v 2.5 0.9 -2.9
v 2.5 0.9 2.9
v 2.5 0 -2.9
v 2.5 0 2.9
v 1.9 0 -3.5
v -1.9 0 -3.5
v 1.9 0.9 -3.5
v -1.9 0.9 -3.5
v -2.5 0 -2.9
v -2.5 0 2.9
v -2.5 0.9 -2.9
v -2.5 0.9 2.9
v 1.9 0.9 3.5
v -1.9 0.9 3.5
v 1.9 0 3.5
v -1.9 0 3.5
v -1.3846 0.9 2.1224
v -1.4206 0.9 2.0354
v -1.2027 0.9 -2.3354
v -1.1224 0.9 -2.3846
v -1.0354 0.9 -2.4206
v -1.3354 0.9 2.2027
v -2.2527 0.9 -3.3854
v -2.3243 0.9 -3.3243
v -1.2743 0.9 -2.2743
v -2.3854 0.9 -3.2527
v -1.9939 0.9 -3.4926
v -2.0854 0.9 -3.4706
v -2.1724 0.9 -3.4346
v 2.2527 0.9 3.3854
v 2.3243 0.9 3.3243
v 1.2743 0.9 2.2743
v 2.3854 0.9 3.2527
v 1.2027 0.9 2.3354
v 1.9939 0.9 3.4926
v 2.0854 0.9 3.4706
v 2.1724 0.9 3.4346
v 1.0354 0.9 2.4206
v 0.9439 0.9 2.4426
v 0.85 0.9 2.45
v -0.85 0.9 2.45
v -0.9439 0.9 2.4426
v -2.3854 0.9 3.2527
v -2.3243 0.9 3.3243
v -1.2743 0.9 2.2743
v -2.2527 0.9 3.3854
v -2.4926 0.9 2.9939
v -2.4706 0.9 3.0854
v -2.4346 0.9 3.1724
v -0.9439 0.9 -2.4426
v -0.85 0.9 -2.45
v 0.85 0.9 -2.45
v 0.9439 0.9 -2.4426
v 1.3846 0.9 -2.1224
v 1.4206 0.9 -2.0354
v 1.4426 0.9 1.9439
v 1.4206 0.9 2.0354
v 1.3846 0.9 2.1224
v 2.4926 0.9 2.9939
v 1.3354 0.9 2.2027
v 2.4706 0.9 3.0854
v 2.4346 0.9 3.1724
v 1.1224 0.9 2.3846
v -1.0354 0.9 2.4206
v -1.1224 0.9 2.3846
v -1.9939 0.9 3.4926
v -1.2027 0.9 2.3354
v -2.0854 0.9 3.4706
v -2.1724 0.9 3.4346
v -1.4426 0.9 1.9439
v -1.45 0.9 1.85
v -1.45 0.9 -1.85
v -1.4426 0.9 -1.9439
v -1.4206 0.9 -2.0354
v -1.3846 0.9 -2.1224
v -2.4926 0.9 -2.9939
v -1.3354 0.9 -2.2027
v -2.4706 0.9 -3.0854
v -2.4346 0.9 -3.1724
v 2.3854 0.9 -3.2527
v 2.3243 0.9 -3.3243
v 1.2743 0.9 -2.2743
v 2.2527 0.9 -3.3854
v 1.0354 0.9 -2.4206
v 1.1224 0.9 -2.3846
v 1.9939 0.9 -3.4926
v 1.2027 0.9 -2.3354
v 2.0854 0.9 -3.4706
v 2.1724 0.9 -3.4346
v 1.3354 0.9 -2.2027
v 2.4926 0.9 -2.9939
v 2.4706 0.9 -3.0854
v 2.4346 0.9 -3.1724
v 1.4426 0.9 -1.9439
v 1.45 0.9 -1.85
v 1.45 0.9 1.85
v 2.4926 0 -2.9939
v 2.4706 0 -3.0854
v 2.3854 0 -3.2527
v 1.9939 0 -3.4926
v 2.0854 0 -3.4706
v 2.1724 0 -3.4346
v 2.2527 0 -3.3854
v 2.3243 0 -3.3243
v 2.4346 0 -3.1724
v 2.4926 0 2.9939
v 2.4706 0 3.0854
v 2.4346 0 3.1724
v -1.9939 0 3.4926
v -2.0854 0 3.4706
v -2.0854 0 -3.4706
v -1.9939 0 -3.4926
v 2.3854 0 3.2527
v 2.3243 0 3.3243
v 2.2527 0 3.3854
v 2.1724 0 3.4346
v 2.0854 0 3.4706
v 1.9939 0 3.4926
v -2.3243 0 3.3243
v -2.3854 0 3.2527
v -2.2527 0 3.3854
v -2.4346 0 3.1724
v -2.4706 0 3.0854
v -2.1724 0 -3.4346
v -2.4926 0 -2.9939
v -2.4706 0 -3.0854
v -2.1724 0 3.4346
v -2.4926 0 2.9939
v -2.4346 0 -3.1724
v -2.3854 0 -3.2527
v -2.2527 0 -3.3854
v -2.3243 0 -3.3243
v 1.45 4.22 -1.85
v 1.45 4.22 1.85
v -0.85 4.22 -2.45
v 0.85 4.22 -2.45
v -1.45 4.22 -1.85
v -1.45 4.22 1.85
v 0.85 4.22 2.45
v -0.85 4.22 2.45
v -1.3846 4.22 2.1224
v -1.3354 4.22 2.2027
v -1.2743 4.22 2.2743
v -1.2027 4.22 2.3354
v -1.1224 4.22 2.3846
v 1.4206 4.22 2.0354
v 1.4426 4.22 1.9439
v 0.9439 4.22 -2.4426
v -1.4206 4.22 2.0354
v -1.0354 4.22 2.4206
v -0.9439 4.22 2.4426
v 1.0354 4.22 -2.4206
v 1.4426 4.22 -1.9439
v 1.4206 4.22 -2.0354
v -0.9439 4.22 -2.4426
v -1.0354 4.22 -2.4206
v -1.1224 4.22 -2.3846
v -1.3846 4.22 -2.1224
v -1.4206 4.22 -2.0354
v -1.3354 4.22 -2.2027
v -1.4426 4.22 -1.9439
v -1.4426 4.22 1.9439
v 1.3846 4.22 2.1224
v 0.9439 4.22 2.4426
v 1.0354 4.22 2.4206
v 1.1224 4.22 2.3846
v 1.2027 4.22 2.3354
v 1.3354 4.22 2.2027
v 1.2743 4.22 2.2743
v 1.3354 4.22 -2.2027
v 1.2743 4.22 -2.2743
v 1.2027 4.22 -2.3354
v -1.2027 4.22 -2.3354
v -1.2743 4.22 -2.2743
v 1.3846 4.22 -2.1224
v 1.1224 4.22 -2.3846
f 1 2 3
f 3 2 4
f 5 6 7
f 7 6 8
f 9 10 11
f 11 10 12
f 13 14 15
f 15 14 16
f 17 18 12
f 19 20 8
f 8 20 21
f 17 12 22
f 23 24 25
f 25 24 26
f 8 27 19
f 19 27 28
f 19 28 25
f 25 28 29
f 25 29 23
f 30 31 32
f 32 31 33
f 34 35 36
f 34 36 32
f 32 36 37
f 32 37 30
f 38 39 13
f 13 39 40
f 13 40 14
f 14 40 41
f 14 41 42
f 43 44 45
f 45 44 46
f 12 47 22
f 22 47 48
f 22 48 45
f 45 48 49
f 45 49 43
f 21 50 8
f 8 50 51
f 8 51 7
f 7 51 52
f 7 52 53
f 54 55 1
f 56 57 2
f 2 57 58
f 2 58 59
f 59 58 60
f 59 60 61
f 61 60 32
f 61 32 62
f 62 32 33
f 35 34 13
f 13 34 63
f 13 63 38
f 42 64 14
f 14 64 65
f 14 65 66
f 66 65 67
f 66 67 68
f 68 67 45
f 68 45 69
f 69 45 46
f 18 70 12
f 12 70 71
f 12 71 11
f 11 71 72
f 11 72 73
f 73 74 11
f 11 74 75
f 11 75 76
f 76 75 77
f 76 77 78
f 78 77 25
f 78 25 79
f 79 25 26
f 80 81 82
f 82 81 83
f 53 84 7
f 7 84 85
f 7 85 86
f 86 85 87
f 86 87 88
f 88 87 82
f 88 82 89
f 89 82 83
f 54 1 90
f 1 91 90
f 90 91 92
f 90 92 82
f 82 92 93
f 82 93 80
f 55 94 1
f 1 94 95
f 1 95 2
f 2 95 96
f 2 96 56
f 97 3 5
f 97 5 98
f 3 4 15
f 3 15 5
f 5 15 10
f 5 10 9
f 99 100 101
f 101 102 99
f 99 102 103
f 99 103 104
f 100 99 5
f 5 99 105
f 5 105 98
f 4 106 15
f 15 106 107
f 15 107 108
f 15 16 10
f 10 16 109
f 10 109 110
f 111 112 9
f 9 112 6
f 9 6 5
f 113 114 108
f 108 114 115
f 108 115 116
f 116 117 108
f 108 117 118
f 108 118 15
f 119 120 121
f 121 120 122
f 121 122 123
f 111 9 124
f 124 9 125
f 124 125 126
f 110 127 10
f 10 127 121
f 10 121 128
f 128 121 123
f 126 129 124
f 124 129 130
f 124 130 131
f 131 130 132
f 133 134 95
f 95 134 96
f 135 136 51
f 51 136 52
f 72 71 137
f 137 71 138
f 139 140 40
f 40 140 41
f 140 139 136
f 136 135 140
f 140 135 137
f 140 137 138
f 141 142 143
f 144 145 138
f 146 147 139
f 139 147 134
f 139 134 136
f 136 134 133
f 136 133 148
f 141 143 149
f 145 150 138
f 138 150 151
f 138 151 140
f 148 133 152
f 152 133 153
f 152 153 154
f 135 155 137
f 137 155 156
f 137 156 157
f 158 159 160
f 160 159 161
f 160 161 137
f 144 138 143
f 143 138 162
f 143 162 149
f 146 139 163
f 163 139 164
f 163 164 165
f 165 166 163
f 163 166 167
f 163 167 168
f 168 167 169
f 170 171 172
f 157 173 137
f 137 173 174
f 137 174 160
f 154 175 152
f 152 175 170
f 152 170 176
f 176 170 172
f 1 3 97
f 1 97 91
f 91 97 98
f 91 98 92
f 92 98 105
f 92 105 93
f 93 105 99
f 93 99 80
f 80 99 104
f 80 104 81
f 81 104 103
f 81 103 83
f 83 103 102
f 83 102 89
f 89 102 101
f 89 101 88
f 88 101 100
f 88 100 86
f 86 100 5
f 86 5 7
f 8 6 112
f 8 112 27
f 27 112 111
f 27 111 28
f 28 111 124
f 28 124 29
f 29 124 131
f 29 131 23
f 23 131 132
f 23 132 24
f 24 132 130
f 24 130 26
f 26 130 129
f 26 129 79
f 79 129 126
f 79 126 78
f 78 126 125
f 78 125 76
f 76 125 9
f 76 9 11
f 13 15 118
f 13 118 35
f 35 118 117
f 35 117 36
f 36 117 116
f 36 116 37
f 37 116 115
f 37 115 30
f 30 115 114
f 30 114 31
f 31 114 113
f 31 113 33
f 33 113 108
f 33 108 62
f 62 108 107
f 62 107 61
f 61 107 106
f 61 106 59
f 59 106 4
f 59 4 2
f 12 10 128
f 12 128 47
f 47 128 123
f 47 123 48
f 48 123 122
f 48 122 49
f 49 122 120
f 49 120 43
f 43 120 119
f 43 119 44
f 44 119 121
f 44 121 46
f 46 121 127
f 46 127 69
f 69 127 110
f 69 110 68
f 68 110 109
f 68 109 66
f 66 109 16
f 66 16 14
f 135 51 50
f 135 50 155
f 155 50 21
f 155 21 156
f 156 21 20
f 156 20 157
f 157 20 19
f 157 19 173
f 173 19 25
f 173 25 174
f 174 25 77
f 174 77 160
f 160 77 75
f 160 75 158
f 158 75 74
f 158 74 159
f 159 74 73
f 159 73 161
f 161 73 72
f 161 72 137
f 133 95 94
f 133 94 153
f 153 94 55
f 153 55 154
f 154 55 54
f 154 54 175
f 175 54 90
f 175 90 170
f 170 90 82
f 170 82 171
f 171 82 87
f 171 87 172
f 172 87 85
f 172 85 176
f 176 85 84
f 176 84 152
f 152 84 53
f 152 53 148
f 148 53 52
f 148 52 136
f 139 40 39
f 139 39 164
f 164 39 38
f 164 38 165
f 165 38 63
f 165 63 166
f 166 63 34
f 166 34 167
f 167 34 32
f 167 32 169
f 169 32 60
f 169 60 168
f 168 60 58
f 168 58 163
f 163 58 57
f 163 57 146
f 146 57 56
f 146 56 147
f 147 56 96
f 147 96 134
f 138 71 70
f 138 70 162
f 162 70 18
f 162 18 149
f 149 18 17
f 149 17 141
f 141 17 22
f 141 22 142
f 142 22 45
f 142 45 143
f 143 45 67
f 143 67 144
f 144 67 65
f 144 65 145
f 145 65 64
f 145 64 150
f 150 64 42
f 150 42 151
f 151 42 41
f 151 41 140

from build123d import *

# Parameters (mm, degrees)
SKETCH_1_W      = 5
SKETCH_1_H      = 7
EXTRUDE_1_DEPTH = 0.9
SKETCH_2_W      = 2.9
SKETCH_2_H      = 4.9
EXTRUDE_2_DEPTH = 3.32
FILLET_1_R      = 0.6


with BuildPart() as part:
    # 草图1 → 凸台-拉伸1 (new body)
    with BuildSketch(Plane(origin=(0, 0, 0), x_dir=(1, 0, 0), z_dir=(0, 1, 0))):
        Rectangle(SKETCH_1_W, SKETCH_1_H)
    extrude(amount=EXTRUDE_1_DEPTH)

    # 草图2 → 凸台-拉伸2 (add)
    with BuildSketch(Plane(origin=(0, 0.9, 0), x_dir=(1, 0, 0), z_dir=(0, 1, 0))):
        Rectangle(SKETCH_2_W, SKETCH_2_H)
    extrude(amount=EXTRUDE_2_DEPTH)

    # 圆角1
    fillet_1_edges = [part.edges().sort_by_distance(p)[0] for p in [
        (1.45, 2.56, 2.45),
        (1.45, 2.56, -2.45),
        (-1.45, 2.56, -2.45),
        (-1.45, 2.56, 2.45),
        (2.5, 0.45, 3.5),
        (-2.5, 0.45, 3.5),
        (-2.5, 0.45, -3.5),
        (2.5, 0.45, -3.5),
    ]]
    fillet(fillet_1_edges, radius=FILLET_1_R)


solid = part.part
